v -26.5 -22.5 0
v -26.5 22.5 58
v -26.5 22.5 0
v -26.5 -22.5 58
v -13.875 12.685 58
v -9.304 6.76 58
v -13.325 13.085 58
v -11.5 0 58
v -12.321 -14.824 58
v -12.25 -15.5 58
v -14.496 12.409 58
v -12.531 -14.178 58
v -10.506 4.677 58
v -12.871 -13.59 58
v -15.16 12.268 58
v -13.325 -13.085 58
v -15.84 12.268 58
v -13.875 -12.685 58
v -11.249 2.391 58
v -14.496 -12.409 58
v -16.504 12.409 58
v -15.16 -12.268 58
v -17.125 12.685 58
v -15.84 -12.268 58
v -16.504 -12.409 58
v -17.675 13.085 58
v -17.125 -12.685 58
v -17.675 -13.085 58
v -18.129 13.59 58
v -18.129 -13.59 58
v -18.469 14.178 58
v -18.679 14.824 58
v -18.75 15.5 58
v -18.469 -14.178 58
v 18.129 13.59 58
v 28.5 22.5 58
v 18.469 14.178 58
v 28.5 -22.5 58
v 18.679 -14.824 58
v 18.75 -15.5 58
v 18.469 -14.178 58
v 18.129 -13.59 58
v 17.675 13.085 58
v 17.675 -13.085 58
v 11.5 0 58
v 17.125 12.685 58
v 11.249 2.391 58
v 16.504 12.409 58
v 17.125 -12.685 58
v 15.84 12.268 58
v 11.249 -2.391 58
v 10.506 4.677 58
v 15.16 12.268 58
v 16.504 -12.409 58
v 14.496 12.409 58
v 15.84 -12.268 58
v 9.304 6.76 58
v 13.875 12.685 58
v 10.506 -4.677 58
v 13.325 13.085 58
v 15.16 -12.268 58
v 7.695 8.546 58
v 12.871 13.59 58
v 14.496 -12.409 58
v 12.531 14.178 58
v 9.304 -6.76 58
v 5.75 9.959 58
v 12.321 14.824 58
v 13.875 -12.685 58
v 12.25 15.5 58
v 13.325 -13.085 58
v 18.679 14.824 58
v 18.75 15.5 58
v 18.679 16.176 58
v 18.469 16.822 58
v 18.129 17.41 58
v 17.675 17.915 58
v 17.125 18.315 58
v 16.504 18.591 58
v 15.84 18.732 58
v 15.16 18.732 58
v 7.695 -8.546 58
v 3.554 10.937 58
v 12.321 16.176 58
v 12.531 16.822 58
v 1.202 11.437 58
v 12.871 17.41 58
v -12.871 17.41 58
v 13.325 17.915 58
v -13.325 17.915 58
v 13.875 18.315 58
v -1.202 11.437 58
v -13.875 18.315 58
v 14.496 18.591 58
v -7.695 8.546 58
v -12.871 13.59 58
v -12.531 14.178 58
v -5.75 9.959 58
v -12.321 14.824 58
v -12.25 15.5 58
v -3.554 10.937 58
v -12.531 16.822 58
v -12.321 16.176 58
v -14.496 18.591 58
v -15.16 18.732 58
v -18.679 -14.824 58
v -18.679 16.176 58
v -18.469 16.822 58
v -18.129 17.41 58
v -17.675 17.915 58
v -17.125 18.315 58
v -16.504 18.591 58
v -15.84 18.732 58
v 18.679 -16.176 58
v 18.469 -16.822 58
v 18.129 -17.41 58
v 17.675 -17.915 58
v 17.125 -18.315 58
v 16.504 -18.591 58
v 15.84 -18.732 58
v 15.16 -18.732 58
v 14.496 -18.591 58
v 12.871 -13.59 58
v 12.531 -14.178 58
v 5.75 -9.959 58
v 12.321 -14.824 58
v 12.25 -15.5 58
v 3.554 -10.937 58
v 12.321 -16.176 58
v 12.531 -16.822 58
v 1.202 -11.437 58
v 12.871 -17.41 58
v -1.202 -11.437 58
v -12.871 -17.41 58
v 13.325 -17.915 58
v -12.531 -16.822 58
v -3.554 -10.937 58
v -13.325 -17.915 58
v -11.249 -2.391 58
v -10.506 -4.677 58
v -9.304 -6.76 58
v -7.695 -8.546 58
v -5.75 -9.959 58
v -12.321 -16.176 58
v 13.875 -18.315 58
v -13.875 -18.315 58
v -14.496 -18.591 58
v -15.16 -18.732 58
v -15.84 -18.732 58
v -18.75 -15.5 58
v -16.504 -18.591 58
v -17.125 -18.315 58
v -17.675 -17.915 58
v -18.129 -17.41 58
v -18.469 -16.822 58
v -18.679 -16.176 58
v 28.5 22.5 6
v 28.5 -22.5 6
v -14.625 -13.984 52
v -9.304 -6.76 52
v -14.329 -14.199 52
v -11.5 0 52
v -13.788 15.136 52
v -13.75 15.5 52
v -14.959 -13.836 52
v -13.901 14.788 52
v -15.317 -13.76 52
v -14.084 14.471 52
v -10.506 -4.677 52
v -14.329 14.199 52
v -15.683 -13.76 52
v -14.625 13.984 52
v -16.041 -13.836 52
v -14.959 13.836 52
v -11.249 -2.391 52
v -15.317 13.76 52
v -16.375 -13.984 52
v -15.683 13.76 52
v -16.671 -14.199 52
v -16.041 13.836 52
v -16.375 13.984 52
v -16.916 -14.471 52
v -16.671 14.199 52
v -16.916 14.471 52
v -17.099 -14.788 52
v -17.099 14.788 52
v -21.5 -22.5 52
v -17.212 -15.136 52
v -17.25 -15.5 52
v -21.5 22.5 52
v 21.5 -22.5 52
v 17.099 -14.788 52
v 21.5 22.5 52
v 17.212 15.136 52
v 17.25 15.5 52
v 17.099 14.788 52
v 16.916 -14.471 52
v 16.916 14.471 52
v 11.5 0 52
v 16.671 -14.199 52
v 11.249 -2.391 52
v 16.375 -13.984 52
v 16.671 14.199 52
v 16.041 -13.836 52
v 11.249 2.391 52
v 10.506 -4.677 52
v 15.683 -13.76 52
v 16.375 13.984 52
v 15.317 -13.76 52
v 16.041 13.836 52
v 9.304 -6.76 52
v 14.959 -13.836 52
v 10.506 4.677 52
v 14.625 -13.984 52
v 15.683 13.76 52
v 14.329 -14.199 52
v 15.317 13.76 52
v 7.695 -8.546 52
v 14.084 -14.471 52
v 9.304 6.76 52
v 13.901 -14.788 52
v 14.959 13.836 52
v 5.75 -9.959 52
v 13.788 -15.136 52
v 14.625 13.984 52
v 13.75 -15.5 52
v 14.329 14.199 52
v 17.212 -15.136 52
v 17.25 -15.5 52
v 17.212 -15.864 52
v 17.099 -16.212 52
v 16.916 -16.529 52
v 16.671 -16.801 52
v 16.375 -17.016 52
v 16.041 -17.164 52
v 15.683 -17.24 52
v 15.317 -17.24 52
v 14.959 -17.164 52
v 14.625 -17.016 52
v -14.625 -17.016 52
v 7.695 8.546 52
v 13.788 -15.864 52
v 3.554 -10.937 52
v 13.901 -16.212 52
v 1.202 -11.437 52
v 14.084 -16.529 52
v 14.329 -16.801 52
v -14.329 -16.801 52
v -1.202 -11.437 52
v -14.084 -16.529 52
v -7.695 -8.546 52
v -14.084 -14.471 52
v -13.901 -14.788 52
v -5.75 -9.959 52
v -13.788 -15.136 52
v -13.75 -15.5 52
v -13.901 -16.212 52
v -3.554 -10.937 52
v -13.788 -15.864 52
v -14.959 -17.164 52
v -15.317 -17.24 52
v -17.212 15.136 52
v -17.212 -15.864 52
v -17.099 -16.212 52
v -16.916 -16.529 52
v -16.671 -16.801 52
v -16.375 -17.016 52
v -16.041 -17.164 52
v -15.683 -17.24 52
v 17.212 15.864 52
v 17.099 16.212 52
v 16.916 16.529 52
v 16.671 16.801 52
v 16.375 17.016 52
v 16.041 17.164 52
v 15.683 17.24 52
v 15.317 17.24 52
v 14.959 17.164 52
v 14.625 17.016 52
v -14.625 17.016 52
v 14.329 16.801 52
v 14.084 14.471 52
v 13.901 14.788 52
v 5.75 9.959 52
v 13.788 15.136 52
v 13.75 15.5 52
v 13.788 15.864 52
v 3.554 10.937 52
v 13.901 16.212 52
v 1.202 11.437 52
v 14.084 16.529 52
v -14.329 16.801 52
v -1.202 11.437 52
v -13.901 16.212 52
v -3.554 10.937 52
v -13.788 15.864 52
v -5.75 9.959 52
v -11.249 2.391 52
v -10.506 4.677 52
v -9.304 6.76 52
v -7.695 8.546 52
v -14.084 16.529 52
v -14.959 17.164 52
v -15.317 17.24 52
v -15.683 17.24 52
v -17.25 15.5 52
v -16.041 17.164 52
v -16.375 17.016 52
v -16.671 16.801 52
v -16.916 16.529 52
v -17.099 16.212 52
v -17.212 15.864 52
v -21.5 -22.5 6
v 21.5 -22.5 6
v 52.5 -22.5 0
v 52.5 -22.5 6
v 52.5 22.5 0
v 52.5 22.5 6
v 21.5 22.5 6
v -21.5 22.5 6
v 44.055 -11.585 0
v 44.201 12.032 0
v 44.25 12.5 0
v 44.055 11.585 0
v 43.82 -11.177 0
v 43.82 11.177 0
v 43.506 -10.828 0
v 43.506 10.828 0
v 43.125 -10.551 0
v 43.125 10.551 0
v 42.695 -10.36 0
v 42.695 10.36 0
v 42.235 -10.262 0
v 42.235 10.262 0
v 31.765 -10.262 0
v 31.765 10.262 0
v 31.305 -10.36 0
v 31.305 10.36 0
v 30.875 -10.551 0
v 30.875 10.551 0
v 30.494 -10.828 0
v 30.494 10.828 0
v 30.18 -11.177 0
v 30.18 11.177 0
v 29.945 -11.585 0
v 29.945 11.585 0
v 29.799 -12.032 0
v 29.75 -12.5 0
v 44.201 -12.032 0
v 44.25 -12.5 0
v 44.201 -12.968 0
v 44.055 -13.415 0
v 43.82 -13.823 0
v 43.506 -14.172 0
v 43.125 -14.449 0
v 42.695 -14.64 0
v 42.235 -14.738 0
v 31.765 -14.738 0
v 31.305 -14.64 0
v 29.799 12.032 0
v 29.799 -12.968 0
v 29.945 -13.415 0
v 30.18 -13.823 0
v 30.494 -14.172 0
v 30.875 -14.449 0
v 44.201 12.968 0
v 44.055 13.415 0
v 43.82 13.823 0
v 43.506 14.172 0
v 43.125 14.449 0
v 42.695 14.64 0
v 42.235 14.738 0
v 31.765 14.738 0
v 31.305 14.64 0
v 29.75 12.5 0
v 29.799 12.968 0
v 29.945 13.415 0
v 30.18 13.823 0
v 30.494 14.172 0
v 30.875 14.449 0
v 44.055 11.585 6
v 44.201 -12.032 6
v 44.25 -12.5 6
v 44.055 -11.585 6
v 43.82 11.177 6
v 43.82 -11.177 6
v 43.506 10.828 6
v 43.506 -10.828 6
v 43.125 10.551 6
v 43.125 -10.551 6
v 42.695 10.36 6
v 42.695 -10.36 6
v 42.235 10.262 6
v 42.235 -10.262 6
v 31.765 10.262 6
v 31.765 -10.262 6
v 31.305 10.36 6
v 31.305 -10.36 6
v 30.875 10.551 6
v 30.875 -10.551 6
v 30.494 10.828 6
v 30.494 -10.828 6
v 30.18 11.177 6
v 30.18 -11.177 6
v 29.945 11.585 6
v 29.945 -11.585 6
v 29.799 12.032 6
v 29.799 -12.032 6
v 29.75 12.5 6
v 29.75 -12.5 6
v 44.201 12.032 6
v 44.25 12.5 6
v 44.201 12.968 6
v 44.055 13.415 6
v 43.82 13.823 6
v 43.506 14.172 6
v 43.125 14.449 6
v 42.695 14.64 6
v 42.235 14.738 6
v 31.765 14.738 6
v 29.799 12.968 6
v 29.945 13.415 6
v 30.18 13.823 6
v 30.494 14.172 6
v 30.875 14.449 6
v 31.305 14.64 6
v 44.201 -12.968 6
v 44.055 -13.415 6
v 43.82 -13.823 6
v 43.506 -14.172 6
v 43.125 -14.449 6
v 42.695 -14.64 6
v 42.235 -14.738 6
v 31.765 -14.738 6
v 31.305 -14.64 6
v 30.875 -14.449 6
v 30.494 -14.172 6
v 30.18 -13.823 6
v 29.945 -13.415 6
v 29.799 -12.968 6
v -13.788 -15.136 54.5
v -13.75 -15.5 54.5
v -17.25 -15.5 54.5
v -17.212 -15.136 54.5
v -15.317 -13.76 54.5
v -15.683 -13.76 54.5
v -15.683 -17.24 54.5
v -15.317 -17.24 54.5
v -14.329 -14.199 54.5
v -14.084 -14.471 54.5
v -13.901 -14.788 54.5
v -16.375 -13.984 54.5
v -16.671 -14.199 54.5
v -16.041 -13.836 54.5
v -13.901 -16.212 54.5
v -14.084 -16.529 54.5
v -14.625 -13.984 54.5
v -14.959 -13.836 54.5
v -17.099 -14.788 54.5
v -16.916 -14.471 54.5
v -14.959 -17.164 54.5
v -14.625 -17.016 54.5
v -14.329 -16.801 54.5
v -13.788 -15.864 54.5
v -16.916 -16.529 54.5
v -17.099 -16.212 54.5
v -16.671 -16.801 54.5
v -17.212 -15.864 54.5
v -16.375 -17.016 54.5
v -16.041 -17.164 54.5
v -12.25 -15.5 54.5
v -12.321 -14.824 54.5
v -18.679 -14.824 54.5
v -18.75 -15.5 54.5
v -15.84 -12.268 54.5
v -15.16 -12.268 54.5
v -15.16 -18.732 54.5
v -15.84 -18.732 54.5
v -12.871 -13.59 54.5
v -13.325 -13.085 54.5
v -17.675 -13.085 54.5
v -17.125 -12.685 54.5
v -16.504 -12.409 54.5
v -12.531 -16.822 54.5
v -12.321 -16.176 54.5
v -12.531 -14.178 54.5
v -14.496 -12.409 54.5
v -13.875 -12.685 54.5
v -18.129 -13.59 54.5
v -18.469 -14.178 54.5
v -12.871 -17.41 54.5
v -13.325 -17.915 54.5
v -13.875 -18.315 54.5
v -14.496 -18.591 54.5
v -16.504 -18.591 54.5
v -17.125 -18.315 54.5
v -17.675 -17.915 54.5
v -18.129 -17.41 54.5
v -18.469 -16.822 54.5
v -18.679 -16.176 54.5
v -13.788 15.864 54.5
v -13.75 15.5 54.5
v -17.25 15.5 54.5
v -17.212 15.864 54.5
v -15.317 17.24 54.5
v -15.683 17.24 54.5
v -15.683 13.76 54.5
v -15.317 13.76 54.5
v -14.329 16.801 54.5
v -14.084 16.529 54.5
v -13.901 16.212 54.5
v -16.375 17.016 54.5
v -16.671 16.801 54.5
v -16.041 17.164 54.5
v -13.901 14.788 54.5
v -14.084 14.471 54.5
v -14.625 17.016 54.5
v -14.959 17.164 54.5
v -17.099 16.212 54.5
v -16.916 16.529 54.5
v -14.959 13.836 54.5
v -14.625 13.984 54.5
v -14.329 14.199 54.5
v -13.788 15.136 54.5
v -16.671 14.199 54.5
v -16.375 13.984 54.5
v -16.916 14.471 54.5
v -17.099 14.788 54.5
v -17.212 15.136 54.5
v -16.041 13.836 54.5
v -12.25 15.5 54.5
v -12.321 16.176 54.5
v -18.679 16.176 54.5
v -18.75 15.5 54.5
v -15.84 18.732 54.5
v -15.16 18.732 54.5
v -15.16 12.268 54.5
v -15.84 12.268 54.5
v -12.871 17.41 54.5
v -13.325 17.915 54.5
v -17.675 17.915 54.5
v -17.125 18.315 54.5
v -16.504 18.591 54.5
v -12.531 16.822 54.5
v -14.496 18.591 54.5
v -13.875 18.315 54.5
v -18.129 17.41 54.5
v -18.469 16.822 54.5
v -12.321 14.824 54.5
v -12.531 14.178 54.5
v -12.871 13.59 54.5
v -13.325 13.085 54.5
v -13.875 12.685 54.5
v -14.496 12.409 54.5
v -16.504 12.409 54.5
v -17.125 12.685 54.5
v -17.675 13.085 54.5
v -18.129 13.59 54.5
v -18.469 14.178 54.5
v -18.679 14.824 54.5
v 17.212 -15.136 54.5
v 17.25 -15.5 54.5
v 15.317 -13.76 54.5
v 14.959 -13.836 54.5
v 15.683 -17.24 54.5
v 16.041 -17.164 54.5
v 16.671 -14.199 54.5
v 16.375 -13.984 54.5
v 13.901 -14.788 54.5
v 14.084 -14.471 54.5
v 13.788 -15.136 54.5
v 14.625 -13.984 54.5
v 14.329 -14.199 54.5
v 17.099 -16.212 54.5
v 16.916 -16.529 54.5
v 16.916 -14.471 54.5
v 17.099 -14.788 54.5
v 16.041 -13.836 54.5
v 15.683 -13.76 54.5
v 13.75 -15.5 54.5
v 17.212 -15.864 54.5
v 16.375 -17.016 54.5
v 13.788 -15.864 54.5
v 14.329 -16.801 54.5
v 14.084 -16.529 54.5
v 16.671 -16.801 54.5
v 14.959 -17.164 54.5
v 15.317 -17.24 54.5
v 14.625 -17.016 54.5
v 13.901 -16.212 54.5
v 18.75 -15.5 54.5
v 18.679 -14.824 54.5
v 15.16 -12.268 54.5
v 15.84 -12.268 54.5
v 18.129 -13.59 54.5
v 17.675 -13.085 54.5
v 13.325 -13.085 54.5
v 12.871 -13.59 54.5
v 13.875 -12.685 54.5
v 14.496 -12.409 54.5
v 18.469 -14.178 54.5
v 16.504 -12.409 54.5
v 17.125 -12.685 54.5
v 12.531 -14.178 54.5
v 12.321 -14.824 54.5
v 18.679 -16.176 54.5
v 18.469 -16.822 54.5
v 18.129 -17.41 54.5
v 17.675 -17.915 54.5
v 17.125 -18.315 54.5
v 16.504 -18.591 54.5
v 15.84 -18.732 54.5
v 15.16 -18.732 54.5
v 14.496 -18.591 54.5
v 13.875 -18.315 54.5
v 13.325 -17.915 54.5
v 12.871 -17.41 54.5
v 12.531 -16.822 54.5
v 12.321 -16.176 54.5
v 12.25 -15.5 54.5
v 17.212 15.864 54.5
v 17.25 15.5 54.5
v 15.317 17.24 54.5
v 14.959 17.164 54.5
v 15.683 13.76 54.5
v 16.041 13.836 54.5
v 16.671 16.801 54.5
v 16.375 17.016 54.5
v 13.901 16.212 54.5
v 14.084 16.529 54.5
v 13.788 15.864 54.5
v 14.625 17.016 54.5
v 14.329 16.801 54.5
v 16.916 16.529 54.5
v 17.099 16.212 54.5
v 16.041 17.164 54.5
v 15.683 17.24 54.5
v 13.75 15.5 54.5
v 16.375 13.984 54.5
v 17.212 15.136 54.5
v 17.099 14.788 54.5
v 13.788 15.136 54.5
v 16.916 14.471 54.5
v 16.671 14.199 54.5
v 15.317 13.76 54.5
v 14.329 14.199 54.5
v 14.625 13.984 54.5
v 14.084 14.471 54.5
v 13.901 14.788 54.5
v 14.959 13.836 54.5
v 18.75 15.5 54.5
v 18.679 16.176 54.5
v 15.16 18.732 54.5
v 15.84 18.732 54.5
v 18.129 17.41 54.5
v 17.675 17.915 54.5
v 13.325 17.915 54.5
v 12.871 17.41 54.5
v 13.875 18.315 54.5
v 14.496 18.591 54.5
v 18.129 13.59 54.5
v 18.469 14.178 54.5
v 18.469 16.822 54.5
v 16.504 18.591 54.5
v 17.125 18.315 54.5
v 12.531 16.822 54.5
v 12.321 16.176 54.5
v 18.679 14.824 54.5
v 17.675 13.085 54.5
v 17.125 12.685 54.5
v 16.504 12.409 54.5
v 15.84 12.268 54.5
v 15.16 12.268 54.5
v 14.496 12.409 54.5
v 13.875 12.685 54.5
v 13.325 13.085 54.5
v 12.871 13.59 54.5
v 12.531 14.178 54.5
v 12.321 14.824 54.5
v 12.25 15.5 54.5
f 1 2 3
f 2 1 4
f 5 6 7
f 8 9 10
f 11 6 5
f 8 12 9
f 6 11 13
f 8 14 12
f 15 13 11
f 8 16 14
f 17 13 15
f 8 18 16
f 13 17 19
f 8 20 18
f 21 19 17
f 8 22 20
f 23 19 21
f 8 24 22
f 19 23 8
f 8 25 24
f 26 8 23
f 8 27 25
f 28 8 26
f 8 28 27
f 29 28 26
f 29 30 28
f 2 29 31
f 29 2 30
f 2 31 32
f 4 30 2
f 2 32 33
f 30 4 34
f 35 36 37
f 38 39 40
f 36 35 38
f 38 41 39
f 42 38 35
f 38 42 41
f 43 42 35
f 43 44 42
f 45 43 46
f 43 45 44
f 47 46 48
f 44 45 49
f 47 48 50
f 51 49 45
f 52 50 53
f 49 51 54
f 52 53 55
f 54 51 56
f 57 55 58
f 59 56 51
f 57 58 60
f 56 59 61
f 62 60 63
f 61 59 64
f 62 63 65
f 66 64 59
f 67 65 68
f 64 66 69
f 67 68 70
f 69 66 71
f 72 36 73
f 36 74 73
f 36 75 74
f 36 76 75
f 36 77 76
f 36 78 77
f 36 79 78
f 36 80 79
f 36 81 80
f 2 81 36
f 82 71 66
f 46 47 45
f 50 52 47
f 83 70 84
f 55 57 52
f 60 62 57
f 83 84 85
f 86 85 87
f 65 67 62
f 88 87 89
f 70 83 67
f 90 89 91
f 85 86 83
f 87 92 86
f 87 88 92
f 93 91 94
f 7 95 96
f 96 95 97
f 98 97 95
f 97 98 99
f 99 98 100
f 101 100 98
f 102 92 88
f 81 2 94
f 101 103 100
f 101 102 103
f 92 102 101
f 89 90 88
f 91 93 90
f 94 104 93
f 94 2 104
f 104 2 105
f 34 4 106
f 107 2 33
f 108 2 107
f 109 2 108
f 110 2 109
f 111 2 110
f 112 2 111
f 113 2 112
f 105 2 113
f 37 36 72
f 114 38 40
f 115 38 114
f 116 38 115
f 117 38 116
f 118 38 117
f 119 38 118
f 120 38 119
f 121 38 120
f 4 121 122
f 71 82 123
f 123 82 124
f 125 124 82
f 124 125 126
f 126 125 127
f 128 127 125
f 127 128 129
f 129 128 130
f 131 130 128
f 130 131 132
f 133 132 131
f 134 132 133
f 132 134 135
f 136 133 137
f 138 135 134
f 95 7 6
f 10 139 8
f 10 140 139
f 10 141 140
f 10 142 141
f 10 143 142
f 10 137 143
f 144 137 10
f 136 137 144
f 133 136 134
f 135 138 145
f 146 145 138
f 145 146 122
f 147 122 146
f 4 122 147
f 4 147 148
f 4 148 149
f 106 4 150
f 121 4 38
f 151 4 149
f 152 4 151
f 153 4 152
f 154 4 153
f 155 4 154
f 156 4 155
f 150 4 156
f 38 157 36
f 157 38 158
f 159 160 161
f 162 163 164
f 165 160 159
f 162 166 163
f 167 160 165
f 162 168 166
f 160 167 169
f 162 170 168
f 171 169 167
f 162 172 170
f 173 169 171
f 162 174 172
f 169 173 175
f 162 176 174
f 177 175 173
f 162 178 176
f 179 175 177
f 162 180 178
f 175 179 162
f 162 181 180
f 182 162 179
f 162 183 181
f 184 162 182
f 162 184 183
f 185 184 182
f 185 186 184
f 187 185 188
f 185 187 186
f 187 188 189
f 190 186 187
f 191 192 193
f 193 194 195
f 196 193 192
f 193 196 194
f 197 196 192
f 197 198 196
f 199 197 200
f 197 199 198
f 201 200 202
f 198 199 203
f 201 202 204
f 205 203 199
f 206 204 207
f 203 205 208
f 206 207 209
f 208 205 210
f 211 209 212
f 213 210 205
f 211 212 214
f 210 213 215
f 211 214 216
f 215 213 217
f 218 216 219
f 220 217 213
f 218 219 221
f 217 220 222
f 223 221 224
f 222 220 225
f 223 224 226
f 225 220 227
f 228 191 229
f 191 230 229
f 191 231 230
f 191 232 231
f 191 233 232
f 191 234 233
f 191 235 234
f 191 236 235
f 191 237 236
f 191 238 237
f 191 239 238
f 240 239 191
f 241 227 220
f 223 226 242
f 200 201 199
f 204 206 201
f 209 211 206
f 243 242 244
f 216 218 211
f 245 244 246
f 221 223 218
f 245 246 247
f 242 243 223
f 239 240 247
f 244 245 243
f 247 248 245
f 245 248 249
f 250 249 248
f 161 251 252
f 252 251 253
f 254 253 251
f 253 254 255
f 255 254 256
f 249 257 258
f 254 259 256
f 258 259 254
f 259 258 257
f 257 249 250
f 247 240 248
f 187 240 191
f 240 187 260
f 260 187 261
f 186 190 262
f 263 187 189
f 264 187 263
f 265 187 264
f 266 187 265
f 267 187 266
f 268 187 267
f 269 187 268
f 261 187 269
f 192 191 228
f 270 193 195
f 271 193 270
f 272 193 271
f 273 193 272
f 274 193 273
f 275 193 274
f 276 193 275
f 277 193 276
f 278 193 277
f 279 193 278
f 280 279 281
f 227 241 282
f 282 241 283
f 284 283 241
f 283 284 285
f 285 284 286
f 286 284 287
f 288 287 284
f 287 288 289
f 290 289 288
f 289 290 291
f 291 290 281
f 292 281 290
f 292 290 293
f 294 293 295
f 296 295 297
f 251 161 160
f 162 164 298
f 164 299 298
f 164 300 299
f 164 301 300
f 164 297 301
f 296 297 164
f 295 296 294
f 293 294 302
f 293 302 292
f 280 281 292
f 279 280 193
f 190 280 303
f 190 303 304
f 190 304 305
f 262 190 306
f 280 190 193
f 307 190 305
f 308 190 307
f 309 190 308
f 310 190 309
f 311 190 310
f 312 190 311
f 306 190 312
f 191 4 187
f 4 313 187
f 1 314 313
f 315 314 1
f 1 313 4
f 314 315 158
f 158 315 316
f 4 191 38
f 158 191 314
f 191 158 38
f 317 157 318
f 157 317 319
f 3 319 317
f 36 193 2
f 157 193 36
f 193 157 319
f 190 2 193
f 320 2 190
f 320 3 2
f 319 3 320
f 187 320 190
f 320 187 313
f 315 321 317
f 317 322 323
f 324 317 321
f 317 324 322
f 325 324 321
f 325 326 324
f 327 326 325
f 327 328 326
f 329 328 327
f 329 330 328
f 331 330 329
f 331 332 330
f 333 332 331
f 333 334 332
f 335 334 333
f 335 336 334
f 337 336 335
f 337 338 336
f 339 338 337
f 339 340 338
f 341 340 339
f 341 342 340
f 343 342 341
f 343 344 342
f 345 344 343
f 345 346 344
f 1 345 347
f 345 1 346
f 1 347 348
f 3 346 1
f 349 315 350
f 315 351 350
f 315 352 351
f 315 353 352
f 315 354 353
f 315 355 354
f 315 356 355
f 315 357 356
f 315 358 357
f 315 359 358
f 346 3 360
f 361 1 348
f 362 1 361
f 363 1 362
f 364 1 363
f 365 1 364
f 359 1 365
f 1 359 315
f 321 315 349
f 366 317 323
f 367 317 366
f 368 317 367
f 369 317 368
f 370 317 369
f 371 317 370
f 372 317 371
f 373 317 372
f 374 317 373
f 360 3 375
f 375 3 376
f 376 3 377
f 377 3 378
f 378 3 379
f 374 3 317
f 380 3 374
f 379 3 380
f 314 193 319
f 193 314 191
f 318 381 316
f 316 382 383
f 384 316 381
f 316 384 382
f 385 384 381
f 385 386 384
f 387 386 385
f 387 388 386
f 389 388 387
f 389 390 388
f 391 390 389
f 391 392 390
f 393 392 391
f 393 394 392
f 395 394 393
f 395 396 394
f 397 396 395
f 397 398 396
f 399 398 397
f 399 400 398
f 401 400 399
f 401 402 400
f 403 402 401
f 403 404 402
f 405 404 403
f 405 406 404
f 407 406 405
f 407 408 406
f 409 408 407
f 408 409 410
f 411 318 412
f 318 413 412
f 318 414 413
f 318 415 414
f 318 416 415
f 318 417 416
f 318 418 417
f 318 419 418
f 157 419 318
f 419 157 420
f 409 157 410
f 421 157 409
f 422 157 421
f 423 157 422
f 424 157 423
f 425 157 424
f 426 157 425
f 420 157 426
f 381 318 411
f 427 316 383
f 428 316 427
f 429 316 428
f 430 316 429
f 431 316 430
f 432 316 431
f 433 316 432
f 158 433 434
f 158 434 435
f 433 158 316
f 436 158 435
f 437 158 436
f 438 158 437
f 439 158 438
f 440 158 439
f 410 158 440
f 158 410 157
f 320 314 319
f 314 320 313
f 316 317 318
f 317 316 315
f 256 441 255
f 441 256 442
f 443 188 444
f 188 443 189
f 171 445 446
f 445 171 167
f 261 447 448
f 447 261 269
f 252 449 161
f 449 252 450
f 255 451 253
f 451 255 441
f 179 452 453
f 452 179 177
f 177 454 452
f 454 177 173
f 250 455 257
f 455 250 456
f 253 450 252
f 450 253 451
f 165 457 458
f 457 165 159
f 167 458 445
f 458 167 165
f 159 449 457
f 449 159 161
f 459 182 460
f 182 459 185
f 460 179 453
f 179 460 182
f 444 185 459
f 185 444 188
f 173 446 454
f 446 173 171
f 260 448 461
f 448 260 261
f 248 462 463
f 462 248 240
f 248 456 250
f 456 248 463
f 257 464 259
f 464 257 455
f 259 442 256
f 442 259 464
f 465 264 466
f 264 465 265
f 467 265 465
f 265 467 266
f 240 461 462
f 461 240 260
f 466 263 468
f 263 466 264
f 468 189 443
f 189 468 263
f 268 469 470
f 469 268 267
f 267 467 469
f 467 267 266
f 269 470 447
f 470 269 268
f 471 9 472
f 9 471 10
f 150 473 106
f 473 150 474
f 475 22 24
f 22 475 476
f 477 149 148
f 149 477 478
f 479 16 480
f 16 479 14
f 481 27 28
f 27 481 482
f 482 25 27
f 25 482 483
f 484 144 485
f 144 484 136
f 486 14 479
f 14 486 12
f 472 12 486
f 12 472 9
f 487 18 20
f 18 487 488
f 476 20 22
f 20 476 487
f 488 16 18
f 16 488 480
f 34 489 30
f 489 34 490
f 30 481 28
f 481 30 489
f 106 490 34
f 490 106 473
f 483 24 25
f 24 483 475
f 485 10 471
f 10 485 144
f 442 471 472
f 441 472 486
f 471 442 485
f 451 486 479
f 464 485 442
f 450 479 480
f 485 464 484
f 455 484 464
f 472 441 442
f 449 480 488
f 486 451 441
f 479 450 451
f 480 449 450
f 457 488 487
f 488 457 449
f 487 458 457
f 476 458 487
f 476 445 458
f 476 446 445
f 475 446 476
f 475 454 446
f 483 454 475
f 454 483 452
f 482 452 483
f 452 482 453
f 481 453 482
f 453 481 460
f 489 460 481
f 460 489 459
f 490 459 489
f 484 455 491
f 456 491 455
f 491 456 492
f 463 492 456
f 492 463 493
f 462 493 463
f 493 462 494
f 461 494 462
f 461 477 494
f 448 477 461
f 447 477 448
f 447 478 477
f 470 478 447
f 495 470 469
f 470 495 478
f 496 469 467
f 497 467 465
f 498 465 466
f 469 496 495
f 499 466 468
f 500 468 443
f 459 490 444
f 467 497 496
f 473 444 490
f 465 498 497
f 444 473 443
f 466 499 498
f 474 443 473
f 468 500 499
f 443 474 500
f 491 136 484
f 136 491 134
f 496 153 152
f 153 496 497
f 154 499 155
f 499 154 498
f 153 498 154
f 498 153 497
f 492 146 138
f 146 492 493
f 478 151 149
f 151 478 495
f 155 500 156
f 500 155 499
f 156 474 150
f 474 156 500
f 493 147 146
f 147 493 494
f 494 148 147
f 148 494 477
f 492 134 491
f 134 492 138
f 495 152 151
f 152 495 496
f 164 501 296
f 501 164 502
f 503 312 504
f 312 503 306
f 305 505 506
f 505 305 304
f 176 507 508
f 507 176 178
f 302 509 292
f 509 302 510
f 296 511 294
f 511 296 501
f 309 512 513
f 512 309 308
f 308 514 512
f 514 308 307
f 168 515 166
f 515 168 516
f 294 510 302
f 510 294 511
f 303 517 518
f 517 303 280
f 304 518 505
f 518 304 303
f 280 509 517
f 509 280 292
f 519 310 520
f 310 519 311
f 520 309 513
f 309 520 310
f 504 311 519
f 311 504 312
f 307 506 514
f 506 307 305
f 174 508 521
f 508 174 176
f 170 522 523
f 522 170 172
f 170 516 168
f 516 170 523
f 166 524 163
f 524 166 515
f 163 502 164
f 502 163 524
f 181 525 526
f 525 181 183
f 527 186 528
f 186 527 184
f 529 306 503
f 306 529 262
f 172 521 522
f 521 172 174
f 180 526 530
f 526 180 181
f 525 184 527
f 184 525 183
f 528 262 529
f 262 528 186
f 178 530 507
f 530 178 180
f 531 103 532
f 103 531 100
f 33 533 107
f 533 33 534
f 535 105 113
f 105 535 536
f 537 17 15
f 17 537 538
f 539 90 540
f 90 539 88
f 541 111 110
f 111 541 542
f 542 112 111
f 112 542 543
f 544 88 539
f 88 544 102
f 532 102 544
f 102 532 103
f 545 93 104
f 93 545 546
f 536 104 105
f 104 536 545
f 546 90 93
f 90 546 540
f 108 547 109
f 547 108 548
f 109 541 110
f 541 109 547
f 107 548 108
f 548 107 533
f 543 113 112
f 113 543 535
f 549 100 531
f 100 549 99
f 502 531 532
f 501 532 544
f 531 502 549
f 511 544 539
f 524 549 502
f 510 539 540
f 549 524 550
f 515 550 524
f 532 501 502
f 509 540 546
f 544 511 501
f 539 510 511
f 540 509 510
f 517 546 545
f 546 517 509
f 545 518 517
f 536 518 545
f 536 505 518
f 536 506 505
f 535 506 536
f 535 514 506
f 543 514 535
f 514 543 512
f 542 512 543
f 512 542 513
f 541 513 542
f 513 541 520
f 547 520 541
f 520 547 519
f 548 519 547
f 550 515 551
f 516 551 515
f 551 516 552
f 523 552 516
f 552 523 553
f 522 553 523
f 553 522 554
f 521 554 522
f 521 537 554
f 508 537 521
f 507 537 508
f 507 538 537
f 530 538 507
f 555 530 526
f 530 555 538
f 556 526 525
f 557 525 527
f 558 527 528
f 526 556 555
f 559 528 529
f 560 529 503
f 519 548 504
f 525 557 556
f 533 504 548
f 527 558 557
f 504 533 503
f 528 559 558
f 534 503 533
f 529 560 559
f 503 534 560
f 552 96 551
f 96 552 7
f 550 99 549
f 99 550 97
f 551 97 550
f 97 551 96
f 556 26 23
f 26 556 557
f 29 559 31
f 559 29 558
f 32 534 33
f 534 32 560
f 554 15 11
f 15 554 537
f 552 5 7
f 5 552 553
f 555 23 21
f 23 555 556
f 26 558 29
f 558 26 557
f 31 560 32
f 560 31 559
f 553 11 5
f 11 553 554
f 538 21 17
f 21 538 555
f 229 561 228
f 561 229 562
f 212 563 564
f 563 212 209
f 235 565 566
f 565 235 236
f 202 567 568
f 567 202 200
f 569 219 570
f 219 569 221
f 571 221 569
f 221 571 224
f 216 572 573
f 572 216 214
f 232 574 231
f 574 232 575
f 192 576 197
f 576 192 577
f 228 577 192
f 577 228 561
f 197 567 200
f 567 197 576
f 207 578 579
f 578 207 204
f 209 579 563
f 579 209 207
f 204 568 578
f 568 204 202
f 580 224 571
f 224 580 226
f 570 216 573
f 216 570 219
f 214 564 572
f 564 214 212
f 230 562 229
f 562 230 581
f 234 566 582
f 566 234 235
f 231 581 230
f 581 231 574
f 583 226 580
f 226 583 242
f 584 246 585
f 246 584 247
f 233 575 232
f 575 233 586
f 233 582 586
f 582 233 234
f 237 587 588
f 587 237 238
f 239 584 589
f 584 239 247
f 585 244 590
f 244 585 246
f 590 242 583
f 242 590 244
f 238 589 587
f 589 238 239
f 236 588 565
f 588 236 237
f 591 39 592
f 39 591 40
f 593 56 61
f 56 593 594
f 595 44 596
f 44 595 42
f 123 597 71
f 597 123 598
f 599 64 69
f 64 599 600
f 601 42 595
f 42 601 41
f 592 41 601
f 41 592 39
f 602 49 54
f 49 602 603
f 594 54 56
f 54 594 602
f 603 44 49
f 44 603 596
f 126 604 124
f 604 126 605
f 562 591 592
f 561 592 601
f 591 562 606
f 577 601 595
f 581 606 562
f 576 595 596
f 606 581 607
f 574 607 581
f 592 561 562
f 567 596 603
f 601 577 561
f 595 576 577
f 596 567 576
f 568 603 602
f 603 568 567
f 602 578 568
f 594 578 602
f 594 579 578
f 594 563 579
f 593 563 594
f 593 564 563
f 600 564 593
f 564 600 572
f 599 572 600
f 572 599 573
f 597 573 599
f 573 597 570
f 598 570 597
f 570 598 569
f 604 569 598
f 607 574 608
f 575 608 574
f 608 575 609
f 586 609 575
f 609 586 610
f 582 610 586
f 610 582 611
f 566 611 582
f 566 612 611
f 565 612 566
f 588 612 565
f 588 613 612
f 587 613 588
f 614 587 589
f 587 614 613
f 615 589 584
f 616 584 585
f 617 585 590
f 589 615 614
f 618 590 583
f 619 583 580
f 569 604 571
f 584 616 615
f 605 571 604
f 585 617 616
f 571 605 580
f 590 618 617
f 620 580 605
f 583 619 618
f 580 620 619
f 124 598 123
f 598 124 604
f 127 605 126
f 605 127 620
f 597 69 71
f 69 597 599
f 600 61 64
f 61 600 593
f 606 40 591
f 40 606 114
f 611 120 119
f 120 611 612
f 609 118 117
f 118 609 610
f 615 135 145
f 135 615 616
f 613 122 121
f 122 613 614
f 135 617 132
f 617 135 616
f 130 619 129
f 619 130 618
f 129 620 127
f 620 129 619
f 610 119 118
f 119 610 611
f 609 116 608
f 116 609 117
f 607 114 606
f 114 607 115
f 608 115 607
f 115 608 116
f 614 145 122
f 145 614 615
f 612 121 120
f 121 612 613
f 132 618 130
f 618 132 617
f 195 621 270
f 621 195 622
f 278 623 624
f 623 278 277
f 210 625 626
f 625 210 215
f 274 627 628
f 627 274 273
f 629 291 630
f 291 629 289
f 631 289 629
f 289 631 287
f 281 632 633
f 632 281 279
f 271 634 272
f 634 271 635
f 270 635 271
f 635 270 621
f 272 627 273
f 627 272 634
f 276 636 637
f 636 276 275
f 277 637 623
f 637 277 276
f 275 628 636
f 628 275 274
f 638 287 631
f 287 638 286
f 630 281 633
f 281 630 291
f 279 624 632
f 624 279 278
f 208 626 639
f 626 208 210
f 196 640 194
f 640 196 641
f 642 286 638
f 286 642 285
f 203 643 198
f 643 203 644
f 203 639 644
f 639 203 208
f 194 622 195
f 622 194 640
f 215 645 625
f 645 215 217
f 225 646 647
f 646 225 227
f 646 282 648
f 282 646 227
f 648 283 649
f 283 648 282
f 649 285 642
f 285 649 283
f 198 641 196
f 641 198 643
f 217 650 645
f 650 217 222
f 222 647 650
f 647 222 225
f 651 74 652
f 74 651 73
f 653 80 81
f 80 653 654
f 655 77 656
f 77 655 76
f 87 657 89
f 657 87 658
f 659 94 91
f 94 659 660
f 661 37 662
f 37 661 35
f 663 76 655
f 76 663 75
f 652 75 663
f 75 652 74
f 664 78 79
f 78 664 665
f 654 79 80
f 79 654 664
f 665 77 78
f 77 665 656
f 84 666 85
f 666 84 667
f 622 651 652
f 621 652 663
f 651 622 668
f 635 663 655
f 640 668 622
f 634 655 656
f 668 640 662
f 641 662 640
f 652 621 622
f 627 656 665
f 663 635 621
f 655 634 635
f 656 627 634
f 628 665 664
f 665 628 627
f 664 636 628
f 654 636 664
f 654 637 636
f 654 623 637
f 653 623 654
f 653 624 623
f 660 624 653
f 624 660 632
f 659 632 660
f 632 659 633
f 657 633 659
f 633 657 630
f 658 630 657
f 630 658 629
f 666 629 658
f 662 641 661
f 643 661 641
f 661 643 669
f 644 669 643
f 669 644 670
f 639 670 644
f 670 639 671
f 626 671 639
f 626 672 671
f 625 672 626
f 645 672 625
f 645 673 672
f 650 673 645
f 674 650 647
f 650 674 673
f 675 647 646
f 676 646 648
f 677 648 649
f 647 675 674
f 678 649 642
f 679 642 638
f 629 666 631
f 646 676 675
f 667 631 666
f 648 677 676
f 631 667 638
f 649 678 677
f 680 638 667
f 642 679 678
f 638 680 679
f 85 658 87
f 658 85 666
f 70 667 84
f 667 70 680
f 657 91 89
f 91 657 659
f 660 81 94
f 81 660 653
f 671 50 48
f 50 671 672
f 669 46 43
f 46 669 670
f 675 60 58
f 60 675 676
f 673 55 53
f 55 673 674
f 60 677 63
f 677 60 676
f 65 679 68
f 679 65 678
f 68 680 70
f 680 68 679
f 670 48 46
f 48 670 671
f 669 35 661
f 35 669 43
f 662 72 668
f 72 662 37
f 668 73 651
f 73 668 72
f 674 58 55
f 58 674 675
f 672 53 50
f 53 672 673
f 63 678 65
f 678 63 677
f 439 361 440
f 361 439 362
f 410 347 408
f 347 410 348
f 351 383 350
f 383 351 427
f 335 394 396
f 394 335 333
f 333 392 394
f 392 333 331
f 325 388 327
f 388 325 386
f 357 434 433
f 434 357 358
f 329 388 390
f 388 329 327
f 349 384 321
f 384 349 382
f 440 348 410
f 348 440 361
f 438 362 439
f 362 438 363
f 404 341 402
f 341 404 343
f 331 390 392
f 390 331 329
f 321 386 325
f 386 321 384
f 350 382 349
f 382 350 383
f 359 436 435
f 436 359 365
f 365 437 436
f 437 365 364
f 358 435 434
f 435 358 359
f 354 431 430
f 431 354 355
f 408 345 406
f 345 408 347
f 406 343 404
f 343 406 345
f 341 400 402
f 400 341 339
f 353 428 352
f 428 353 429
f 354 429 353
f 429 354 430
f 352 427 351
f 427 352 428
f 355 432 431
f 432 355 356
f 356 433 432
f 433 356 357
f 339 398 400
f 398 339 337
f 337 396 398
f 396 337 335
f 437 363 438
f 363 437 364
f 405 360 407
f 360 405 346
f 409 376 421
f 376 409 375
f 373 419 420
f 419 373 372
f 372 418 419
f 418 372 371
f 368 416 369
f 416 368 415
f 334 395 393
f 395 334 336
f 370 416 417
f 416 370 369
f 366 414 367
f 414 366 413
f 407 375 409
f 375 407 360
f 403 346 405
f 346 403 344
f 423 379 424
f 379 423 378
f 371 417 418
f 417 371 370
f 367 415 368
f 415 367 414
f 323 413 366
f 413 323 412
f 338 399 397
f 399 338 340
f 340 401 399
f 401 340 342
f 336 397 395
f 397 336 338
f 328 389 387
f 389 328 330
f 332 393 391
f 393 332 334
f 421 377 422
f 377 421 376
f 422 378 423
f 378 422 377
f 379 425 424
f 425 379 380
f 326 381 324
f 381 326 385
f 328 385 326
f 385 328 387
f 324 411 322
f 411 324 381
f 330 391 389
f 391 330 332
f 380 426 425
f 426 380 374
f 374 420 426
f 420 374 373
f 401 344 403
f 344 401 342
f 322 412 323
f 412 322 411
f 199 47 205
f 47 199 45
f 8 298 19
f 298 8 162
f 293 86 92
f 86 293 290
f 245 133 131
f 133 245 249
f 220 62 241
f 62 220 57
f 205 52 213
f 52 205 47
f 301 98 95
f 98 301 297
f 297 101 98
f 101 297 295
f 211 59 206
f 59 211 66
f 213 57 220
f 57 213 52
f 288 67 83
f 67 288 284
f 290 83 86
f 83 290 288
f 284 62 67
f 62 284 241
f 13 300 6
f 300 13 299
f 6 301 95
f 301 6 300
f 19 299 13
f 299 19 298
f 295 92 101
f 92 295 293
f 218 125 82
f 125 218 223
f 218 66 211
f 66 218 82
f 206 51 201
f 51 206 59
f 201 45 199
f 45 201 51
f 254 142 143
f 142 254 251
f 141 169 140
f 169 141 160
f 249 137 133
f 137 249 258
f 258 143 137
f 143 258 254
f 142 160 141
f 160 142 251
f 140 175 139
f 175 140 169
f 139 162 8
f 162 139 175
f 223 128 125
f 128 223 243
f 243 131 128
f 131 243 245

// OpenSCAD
// file: _params.scad
// =========================================================================
// 공유 파라미터 (모든 개별 부품 파일에서 include)
// 메인 어셈블리: cup_z_x_catrage_frame_water_mic_anti_3030.scad 에서 추출
// 프레임: 600 × 420 × 700mm (3030 프로파일, Y=0 대칭)
// =========================================================================

$fn = 60;  // 부품 출력용 고해상도
GLOBAL_TOLERANCE = 0.2;

// --- [1] 하부 기성품 및 원통 파라미터 ---
X_RAIL_LEN = 290.0;
X_BLOCK_W = 30.0; X_BLOCK_L = 32.0;   // 신규 X슬라이더 블록 (폭 30mm × 길이 32mm)
X_PITCH_X = 20.0; X_PITCH_Y = 20.0;   // 체결 홀 피치 (20 × 20mm, M3 나사탭 4개)
X_RAIL_W = 30.0;  X_RAIL_H = 20.0;   // 레일 폭 30mm (레일 바닥~블록 윗면 높이 29mm 반영)
X_TOTAL_H = 29.0;                    // 레일 바닥에서 슬라이더 블록 윗면까지의 높이

MOTOR_W = 42.0;      MOTOR_PITCH = 31.0; MOTOR_HOLE_D = 3.5;    
MOTOR_BOSS_D = 22.0; MOTOR_BOSS_H = 2.0; SCREW_D = 8.0;         
MOT_BODY_L = 41.0;   SHAFT_L = 24.0;     // 실측 NEMA17 몸통 41mm / 축 돌출 24mm

CUP_ID = 99.5;  CUP_WALL = 5.0; CUP_OD = 110.0;     // 아크릴 원통 OD110/ID100
CUP_H = 180.0;   CAGE_H = 60.0;  FLOOR_H = 10.0; PISTON_H = 20.0;     

LIP_D = 30.0;    LIP_H = 5.0;    LEAK_DRAIN_D = 4.0;    
GUIDE_PIPE_D = 8.0; BUSHING_OD = 12.0; BUSHING_H = 8.0;       
DRAIN_RADIUS = 35.0; DRAIN_D = 8.0;        

Y_OFFSET = 85.0; BRKT_H = 12.0; BRKT_D = 122.0; BRKT_ID = 62.0; Z_MOUNT_PCD = 86.0;   

// --- [2] 아크릴 파이프 및 상부 카트리지 ---
ACRYL_ID = 100.0; ACRYL_T = 5.0; ACRYL_OD = ACRYL_ID + (ACRYL_T * 2);  // OD110 (아크릴집 106 재고없음 → 컵과 동일 규격)

REVOLVER_PCD = 240.0;     // 인접 카트리지 웹 9.8mm 확보 (OD110 대응, 230→240)
CARTRIDGE_OD = REVOLVER_PCD + ACRYL_OD + 8; 
TOP_PLATE_H = 15.0;       // 아크릴 15T 통판 (보스홀 단 깊이 10mm)

HUB_D = 60.0;            
SHAFT_D = 12.0;          
HUB_WALL = 4.0;          
HUB_H = 15.0;             // 아크릴 5T × 3장 적층 — 파이프 130mm 대응
POCKET_DEPTH = 5.0;
MID_HUB_Z = 63.5;          // 중단 허브 하면 Z (벨트 중심 Z=71.0mm 정렬, 풀리 상단 Z=75.0mm = 축상단-1mm)
UPPER_HUB_Z = 135.0;       // 상단 허브 하면 Z (전체 135+15=150 유지)
BOSS_OD = 35.0;
BOSS_H = 11.0;             // 보스11 + 와셔1 = 12, 리세스10 → 허브 2mm 공중

// --- [3] GT2 벨트 구동 시스템 ---
GT2_PITCH     = 2.0;
GT2_BELT_W    = 6.0;
BIG_PULLEY_TEETH = 566;
BIG_PULLEY_PD = BIG_PULLEY_TEETH * GT2_PITCH / PI;
BIG_PULLEY_OD = BIG_PULLEY_PD + 1.0;
SMALL_PULLEY_TEETH = 20;
SMALL_PULLEY_PD = SMALL_PULLEY_TEETH * GT2_PITCH / PI;
SMALL_PULLEY_OD = SMALL_PULLEY_PD + 1.0;

BELT_MOTOR_X = -300;
BELT_MOTOR_Y = -155.5;
BRKT_MOTOR_H = 25.0;
BRKT_MOTOR_W = 45.0;        // 브래킷 폭 45mm (프로파일 간섭 회피 복원)
SLOT_LEN = 10.0;
FLAG_W = 15.0;  FLAG_H = 8.0;  FLAG_T = 1.5;

X_POS_MEASURE = 170.0;   // 측정 브래킷 X좌표 (X_M~X_R 정중앙, X대칭)

// --- [4] 3030 프레임 경계 (600×430×700mm) ---
PF = 30;             // 3030 알루미늄 프로파일
WASHER_T = 1.0;     

X_L = -320;
X_M = 60;
X_R = 250;
Y_F = -210;          // 전방 (대칭: -210+30=-180, Y=0 중심)
Y_B = 180;           // 후방 (대칭: 180+30=210, Y=0 중심) — 메인파일과 동기화

Z_BOT = -480;
Z_RAIL = -322;
Z_MID = -TOP_PLATE_H - PF;
Z_TOP = 220;

SUPPORT_PILLAR_H = Z_TOP - PF;

SHAFT_SQ = 20;       // 2020 사각 회전축

// 사각 축 홀 크기
SQ = SHAFT_SQ + GLOBAL_TOLERANCE;  // 20.2mm

// --- 리볼버/컵 축 정렬 (보스홀=판 중심에 리볼버 정렬) ---
REVOLVER_CX = (X_L + X_M + PF)/2;        // 판 중심 = 보스홀 = 리볼버 회전축 (-115)
DROP_X      = REVOLVER_CX + REVOLVER_PCD/2;  // 링 드롭 / 컵 적재 축 (+5)

FLANGE_Z = 52.0;       // 모터 전면 안착 높이 (Z=52mm -> 축 상단 Z=76mm, 풀리 결합)

// --- [5] 모터 체결홀 (이미 제작 완료된 15T 상판 원본 도면 수치 100% 유지) ---
MOTOR_BOLT_PITCH     = 25.0;      // Y피치 (Y = ±12.5mm)
MOTOR_BOLT_X_NOMINAL = X_L + 55;  // 1열: 상판 좌단 55 (모터축 기준 +35mm = X=-265mm)
MOTOR_BOLT_X_SHIFT   = X_L + 40;  // 2열: 상판 좌단 40 (모터축 기준 +20mm = X=-280mm)

// 모터 마운트 볼트 카운터보어 (단볼트용 — 브래킷 두께 25 중 깊게 파냄)
MOTOR_CB_D     = 6.5;            // M3 캡볼트 머리 클리어런스
MOTOR_CB_DEPTH = 19;             // 카운터보어 깊이 (잔여 통과 6mm → M3×10 단볼트)
// main file
// =========================================================================
// [부품] 모터 브래킷 (양측 수직벽 포털 아치형 모터 마운트 브래킷)
// 가공: 3D 프린팅 (PLA)
// 원점: 브래킷 바닥면(상판 접촉면) = Z=0, 모터 축 = XY 원점
// 특징: 좌/우 양측 수직벽(내경 43mm) + 상부 천장(Z=52mm) + 기존 가공 상판 체결 정렬
// =========================================================================
include <_params.scad>

module bracket_motor() {
    BLOCK_W = 45.0;       // Y방향 폭 (45mm)
    LEFT_WALL_T = 5.0;    // 좌측 수직벽 두께 (5mm)
    RIGHT_WALL_T = 7.0;   // 우측 수직벽 두께 (7mm)
    LEFT_X_START = -26.5; // 좌측 수직벽 외단 (-26.5mm)
    LEFT_X_END   = -21.5; // 좌측 수직벽 내단 (-21.5mm -> 42mm 모터 좌단 -21mm와 0.5mm 유격)
    RIGHT_X_START = 21.5; // 우측 수직벽 내단 (+21.5mm -> 42mm 모터 우단 +21mm와 0.5mm 유격)
    RIGHT_X_END   = 28.5; // 우측 수직벽 외단 (+28.5mm)
    FLANGE_Z = 52.0;      // 모터 전면 안착 천장 높이 (Z=52mm -> 축 상단 Z=76mm)
    PLATE_T = 6.0;        // 상부 천장 및 바닥 날개 두께 (6mm)
    TOTAL_H = FLANGE_Z + PLATE_T; // 브래킷 전체 높이 (58mm)
    BRKT_EXT = 30.0;      // 우측 체결 날개 연장 길이 (30mm)

    difference() {
        union() {
            // [1] 상부 천장 플랜지 (X = -26.5 ~ +28.5mm, Y = -22.5 ~ +22.5mm, Z = 52~58mm)
            translate([LEFT_X_START, -BLOCK_W/2, FLANGE_Z])
                cube([RIGHT_X_END - LEFT_X_START, BLOCK_W, PLATE_T]);

            // [2-1] 좌측 수직 지지 벽 (X = -26.5 ~ -21.5mm, Z = 0~52mm, 내경 43mm 확보)
            translate([LEFT_X_START, -BLOCK_W/2, 0])
                cube([LEFT_WALL_T, BLOCK_W, FLANGE_Z]);

            // [2-2] 우측 수직 지지 벽 (X = +21.5 ~ +28.5mm, Z = 0~52mm, 내경 43mm 확보)
            translate([RIGHT_X_START, -BLOCK_W/2, 0])
                cube([RIGHT_WALL_T, BLOCK_W, FLANGE_Z]);

            // [3] 하부 상판 체결 바닥 날개 (X = -26.5 ~ +52.5mm, 두께 6mm)
            translate([LEFT_X_START, -BLOCK_W/2, 0])
                cube([BLOCK_W/2 + BRKT_EXT - LEFT_X_START, BLOCK_W, PLATE_T]);
        }

        // [4] NEMA 17 전면 마운트 관통홀 (31mm 피치, M3 관통)
        for(dx = [-MOTOR_PITCH/2, MOTOR_PITCH/2])
            for(dy = [-MOTOR_PITCH/2, MOTOR_PITCH/2]) {
                translate([dx, dy, FLANGE_Z - 1]) cylinder(d=MOTOR_HOLE_D, h=PLATE_T + 2, $fn=30);
                // 상면 카운터보어 (M3×10mm 볼트 머리 매립, 깊이 3.5mm)
                translate([dx, dy, TOTAL_H - 3.5]) cylinder(d=6.5, h=4.0, $fn=30);
            }

        // [5] 중앙 축 관통홀 (모터 보스 ø22mm 및 샤프트)
        translate([0, 0, FLANGE_Z - 1]) cylinder(d=MOTOR_BOSS_D + 1, h=PLATE_T + 2, $fn=30);

        // [6] 상판 체결 장공 슬롯 (우측벽 X=+28.5mm와 미세 유격 간섭 0% 정밀 보정, X = +32 ~ +42mm)
        for(dy = [-MOTOR_BOLT_PITCH/2, MOTOR_BOLT_PITCH/2])
            hull() {
                translate([32, dy, -2]) cylinder(d=4.5, h=PLATE_T + 4, $fn=30);
                translate([42, dy, -2]) cylinder(d=4.5, h=PLATE_T + 4, $fn=30);
            }
    }
}

// 단품 직접 실행 시 3D 렌더링
bracket_motor();
